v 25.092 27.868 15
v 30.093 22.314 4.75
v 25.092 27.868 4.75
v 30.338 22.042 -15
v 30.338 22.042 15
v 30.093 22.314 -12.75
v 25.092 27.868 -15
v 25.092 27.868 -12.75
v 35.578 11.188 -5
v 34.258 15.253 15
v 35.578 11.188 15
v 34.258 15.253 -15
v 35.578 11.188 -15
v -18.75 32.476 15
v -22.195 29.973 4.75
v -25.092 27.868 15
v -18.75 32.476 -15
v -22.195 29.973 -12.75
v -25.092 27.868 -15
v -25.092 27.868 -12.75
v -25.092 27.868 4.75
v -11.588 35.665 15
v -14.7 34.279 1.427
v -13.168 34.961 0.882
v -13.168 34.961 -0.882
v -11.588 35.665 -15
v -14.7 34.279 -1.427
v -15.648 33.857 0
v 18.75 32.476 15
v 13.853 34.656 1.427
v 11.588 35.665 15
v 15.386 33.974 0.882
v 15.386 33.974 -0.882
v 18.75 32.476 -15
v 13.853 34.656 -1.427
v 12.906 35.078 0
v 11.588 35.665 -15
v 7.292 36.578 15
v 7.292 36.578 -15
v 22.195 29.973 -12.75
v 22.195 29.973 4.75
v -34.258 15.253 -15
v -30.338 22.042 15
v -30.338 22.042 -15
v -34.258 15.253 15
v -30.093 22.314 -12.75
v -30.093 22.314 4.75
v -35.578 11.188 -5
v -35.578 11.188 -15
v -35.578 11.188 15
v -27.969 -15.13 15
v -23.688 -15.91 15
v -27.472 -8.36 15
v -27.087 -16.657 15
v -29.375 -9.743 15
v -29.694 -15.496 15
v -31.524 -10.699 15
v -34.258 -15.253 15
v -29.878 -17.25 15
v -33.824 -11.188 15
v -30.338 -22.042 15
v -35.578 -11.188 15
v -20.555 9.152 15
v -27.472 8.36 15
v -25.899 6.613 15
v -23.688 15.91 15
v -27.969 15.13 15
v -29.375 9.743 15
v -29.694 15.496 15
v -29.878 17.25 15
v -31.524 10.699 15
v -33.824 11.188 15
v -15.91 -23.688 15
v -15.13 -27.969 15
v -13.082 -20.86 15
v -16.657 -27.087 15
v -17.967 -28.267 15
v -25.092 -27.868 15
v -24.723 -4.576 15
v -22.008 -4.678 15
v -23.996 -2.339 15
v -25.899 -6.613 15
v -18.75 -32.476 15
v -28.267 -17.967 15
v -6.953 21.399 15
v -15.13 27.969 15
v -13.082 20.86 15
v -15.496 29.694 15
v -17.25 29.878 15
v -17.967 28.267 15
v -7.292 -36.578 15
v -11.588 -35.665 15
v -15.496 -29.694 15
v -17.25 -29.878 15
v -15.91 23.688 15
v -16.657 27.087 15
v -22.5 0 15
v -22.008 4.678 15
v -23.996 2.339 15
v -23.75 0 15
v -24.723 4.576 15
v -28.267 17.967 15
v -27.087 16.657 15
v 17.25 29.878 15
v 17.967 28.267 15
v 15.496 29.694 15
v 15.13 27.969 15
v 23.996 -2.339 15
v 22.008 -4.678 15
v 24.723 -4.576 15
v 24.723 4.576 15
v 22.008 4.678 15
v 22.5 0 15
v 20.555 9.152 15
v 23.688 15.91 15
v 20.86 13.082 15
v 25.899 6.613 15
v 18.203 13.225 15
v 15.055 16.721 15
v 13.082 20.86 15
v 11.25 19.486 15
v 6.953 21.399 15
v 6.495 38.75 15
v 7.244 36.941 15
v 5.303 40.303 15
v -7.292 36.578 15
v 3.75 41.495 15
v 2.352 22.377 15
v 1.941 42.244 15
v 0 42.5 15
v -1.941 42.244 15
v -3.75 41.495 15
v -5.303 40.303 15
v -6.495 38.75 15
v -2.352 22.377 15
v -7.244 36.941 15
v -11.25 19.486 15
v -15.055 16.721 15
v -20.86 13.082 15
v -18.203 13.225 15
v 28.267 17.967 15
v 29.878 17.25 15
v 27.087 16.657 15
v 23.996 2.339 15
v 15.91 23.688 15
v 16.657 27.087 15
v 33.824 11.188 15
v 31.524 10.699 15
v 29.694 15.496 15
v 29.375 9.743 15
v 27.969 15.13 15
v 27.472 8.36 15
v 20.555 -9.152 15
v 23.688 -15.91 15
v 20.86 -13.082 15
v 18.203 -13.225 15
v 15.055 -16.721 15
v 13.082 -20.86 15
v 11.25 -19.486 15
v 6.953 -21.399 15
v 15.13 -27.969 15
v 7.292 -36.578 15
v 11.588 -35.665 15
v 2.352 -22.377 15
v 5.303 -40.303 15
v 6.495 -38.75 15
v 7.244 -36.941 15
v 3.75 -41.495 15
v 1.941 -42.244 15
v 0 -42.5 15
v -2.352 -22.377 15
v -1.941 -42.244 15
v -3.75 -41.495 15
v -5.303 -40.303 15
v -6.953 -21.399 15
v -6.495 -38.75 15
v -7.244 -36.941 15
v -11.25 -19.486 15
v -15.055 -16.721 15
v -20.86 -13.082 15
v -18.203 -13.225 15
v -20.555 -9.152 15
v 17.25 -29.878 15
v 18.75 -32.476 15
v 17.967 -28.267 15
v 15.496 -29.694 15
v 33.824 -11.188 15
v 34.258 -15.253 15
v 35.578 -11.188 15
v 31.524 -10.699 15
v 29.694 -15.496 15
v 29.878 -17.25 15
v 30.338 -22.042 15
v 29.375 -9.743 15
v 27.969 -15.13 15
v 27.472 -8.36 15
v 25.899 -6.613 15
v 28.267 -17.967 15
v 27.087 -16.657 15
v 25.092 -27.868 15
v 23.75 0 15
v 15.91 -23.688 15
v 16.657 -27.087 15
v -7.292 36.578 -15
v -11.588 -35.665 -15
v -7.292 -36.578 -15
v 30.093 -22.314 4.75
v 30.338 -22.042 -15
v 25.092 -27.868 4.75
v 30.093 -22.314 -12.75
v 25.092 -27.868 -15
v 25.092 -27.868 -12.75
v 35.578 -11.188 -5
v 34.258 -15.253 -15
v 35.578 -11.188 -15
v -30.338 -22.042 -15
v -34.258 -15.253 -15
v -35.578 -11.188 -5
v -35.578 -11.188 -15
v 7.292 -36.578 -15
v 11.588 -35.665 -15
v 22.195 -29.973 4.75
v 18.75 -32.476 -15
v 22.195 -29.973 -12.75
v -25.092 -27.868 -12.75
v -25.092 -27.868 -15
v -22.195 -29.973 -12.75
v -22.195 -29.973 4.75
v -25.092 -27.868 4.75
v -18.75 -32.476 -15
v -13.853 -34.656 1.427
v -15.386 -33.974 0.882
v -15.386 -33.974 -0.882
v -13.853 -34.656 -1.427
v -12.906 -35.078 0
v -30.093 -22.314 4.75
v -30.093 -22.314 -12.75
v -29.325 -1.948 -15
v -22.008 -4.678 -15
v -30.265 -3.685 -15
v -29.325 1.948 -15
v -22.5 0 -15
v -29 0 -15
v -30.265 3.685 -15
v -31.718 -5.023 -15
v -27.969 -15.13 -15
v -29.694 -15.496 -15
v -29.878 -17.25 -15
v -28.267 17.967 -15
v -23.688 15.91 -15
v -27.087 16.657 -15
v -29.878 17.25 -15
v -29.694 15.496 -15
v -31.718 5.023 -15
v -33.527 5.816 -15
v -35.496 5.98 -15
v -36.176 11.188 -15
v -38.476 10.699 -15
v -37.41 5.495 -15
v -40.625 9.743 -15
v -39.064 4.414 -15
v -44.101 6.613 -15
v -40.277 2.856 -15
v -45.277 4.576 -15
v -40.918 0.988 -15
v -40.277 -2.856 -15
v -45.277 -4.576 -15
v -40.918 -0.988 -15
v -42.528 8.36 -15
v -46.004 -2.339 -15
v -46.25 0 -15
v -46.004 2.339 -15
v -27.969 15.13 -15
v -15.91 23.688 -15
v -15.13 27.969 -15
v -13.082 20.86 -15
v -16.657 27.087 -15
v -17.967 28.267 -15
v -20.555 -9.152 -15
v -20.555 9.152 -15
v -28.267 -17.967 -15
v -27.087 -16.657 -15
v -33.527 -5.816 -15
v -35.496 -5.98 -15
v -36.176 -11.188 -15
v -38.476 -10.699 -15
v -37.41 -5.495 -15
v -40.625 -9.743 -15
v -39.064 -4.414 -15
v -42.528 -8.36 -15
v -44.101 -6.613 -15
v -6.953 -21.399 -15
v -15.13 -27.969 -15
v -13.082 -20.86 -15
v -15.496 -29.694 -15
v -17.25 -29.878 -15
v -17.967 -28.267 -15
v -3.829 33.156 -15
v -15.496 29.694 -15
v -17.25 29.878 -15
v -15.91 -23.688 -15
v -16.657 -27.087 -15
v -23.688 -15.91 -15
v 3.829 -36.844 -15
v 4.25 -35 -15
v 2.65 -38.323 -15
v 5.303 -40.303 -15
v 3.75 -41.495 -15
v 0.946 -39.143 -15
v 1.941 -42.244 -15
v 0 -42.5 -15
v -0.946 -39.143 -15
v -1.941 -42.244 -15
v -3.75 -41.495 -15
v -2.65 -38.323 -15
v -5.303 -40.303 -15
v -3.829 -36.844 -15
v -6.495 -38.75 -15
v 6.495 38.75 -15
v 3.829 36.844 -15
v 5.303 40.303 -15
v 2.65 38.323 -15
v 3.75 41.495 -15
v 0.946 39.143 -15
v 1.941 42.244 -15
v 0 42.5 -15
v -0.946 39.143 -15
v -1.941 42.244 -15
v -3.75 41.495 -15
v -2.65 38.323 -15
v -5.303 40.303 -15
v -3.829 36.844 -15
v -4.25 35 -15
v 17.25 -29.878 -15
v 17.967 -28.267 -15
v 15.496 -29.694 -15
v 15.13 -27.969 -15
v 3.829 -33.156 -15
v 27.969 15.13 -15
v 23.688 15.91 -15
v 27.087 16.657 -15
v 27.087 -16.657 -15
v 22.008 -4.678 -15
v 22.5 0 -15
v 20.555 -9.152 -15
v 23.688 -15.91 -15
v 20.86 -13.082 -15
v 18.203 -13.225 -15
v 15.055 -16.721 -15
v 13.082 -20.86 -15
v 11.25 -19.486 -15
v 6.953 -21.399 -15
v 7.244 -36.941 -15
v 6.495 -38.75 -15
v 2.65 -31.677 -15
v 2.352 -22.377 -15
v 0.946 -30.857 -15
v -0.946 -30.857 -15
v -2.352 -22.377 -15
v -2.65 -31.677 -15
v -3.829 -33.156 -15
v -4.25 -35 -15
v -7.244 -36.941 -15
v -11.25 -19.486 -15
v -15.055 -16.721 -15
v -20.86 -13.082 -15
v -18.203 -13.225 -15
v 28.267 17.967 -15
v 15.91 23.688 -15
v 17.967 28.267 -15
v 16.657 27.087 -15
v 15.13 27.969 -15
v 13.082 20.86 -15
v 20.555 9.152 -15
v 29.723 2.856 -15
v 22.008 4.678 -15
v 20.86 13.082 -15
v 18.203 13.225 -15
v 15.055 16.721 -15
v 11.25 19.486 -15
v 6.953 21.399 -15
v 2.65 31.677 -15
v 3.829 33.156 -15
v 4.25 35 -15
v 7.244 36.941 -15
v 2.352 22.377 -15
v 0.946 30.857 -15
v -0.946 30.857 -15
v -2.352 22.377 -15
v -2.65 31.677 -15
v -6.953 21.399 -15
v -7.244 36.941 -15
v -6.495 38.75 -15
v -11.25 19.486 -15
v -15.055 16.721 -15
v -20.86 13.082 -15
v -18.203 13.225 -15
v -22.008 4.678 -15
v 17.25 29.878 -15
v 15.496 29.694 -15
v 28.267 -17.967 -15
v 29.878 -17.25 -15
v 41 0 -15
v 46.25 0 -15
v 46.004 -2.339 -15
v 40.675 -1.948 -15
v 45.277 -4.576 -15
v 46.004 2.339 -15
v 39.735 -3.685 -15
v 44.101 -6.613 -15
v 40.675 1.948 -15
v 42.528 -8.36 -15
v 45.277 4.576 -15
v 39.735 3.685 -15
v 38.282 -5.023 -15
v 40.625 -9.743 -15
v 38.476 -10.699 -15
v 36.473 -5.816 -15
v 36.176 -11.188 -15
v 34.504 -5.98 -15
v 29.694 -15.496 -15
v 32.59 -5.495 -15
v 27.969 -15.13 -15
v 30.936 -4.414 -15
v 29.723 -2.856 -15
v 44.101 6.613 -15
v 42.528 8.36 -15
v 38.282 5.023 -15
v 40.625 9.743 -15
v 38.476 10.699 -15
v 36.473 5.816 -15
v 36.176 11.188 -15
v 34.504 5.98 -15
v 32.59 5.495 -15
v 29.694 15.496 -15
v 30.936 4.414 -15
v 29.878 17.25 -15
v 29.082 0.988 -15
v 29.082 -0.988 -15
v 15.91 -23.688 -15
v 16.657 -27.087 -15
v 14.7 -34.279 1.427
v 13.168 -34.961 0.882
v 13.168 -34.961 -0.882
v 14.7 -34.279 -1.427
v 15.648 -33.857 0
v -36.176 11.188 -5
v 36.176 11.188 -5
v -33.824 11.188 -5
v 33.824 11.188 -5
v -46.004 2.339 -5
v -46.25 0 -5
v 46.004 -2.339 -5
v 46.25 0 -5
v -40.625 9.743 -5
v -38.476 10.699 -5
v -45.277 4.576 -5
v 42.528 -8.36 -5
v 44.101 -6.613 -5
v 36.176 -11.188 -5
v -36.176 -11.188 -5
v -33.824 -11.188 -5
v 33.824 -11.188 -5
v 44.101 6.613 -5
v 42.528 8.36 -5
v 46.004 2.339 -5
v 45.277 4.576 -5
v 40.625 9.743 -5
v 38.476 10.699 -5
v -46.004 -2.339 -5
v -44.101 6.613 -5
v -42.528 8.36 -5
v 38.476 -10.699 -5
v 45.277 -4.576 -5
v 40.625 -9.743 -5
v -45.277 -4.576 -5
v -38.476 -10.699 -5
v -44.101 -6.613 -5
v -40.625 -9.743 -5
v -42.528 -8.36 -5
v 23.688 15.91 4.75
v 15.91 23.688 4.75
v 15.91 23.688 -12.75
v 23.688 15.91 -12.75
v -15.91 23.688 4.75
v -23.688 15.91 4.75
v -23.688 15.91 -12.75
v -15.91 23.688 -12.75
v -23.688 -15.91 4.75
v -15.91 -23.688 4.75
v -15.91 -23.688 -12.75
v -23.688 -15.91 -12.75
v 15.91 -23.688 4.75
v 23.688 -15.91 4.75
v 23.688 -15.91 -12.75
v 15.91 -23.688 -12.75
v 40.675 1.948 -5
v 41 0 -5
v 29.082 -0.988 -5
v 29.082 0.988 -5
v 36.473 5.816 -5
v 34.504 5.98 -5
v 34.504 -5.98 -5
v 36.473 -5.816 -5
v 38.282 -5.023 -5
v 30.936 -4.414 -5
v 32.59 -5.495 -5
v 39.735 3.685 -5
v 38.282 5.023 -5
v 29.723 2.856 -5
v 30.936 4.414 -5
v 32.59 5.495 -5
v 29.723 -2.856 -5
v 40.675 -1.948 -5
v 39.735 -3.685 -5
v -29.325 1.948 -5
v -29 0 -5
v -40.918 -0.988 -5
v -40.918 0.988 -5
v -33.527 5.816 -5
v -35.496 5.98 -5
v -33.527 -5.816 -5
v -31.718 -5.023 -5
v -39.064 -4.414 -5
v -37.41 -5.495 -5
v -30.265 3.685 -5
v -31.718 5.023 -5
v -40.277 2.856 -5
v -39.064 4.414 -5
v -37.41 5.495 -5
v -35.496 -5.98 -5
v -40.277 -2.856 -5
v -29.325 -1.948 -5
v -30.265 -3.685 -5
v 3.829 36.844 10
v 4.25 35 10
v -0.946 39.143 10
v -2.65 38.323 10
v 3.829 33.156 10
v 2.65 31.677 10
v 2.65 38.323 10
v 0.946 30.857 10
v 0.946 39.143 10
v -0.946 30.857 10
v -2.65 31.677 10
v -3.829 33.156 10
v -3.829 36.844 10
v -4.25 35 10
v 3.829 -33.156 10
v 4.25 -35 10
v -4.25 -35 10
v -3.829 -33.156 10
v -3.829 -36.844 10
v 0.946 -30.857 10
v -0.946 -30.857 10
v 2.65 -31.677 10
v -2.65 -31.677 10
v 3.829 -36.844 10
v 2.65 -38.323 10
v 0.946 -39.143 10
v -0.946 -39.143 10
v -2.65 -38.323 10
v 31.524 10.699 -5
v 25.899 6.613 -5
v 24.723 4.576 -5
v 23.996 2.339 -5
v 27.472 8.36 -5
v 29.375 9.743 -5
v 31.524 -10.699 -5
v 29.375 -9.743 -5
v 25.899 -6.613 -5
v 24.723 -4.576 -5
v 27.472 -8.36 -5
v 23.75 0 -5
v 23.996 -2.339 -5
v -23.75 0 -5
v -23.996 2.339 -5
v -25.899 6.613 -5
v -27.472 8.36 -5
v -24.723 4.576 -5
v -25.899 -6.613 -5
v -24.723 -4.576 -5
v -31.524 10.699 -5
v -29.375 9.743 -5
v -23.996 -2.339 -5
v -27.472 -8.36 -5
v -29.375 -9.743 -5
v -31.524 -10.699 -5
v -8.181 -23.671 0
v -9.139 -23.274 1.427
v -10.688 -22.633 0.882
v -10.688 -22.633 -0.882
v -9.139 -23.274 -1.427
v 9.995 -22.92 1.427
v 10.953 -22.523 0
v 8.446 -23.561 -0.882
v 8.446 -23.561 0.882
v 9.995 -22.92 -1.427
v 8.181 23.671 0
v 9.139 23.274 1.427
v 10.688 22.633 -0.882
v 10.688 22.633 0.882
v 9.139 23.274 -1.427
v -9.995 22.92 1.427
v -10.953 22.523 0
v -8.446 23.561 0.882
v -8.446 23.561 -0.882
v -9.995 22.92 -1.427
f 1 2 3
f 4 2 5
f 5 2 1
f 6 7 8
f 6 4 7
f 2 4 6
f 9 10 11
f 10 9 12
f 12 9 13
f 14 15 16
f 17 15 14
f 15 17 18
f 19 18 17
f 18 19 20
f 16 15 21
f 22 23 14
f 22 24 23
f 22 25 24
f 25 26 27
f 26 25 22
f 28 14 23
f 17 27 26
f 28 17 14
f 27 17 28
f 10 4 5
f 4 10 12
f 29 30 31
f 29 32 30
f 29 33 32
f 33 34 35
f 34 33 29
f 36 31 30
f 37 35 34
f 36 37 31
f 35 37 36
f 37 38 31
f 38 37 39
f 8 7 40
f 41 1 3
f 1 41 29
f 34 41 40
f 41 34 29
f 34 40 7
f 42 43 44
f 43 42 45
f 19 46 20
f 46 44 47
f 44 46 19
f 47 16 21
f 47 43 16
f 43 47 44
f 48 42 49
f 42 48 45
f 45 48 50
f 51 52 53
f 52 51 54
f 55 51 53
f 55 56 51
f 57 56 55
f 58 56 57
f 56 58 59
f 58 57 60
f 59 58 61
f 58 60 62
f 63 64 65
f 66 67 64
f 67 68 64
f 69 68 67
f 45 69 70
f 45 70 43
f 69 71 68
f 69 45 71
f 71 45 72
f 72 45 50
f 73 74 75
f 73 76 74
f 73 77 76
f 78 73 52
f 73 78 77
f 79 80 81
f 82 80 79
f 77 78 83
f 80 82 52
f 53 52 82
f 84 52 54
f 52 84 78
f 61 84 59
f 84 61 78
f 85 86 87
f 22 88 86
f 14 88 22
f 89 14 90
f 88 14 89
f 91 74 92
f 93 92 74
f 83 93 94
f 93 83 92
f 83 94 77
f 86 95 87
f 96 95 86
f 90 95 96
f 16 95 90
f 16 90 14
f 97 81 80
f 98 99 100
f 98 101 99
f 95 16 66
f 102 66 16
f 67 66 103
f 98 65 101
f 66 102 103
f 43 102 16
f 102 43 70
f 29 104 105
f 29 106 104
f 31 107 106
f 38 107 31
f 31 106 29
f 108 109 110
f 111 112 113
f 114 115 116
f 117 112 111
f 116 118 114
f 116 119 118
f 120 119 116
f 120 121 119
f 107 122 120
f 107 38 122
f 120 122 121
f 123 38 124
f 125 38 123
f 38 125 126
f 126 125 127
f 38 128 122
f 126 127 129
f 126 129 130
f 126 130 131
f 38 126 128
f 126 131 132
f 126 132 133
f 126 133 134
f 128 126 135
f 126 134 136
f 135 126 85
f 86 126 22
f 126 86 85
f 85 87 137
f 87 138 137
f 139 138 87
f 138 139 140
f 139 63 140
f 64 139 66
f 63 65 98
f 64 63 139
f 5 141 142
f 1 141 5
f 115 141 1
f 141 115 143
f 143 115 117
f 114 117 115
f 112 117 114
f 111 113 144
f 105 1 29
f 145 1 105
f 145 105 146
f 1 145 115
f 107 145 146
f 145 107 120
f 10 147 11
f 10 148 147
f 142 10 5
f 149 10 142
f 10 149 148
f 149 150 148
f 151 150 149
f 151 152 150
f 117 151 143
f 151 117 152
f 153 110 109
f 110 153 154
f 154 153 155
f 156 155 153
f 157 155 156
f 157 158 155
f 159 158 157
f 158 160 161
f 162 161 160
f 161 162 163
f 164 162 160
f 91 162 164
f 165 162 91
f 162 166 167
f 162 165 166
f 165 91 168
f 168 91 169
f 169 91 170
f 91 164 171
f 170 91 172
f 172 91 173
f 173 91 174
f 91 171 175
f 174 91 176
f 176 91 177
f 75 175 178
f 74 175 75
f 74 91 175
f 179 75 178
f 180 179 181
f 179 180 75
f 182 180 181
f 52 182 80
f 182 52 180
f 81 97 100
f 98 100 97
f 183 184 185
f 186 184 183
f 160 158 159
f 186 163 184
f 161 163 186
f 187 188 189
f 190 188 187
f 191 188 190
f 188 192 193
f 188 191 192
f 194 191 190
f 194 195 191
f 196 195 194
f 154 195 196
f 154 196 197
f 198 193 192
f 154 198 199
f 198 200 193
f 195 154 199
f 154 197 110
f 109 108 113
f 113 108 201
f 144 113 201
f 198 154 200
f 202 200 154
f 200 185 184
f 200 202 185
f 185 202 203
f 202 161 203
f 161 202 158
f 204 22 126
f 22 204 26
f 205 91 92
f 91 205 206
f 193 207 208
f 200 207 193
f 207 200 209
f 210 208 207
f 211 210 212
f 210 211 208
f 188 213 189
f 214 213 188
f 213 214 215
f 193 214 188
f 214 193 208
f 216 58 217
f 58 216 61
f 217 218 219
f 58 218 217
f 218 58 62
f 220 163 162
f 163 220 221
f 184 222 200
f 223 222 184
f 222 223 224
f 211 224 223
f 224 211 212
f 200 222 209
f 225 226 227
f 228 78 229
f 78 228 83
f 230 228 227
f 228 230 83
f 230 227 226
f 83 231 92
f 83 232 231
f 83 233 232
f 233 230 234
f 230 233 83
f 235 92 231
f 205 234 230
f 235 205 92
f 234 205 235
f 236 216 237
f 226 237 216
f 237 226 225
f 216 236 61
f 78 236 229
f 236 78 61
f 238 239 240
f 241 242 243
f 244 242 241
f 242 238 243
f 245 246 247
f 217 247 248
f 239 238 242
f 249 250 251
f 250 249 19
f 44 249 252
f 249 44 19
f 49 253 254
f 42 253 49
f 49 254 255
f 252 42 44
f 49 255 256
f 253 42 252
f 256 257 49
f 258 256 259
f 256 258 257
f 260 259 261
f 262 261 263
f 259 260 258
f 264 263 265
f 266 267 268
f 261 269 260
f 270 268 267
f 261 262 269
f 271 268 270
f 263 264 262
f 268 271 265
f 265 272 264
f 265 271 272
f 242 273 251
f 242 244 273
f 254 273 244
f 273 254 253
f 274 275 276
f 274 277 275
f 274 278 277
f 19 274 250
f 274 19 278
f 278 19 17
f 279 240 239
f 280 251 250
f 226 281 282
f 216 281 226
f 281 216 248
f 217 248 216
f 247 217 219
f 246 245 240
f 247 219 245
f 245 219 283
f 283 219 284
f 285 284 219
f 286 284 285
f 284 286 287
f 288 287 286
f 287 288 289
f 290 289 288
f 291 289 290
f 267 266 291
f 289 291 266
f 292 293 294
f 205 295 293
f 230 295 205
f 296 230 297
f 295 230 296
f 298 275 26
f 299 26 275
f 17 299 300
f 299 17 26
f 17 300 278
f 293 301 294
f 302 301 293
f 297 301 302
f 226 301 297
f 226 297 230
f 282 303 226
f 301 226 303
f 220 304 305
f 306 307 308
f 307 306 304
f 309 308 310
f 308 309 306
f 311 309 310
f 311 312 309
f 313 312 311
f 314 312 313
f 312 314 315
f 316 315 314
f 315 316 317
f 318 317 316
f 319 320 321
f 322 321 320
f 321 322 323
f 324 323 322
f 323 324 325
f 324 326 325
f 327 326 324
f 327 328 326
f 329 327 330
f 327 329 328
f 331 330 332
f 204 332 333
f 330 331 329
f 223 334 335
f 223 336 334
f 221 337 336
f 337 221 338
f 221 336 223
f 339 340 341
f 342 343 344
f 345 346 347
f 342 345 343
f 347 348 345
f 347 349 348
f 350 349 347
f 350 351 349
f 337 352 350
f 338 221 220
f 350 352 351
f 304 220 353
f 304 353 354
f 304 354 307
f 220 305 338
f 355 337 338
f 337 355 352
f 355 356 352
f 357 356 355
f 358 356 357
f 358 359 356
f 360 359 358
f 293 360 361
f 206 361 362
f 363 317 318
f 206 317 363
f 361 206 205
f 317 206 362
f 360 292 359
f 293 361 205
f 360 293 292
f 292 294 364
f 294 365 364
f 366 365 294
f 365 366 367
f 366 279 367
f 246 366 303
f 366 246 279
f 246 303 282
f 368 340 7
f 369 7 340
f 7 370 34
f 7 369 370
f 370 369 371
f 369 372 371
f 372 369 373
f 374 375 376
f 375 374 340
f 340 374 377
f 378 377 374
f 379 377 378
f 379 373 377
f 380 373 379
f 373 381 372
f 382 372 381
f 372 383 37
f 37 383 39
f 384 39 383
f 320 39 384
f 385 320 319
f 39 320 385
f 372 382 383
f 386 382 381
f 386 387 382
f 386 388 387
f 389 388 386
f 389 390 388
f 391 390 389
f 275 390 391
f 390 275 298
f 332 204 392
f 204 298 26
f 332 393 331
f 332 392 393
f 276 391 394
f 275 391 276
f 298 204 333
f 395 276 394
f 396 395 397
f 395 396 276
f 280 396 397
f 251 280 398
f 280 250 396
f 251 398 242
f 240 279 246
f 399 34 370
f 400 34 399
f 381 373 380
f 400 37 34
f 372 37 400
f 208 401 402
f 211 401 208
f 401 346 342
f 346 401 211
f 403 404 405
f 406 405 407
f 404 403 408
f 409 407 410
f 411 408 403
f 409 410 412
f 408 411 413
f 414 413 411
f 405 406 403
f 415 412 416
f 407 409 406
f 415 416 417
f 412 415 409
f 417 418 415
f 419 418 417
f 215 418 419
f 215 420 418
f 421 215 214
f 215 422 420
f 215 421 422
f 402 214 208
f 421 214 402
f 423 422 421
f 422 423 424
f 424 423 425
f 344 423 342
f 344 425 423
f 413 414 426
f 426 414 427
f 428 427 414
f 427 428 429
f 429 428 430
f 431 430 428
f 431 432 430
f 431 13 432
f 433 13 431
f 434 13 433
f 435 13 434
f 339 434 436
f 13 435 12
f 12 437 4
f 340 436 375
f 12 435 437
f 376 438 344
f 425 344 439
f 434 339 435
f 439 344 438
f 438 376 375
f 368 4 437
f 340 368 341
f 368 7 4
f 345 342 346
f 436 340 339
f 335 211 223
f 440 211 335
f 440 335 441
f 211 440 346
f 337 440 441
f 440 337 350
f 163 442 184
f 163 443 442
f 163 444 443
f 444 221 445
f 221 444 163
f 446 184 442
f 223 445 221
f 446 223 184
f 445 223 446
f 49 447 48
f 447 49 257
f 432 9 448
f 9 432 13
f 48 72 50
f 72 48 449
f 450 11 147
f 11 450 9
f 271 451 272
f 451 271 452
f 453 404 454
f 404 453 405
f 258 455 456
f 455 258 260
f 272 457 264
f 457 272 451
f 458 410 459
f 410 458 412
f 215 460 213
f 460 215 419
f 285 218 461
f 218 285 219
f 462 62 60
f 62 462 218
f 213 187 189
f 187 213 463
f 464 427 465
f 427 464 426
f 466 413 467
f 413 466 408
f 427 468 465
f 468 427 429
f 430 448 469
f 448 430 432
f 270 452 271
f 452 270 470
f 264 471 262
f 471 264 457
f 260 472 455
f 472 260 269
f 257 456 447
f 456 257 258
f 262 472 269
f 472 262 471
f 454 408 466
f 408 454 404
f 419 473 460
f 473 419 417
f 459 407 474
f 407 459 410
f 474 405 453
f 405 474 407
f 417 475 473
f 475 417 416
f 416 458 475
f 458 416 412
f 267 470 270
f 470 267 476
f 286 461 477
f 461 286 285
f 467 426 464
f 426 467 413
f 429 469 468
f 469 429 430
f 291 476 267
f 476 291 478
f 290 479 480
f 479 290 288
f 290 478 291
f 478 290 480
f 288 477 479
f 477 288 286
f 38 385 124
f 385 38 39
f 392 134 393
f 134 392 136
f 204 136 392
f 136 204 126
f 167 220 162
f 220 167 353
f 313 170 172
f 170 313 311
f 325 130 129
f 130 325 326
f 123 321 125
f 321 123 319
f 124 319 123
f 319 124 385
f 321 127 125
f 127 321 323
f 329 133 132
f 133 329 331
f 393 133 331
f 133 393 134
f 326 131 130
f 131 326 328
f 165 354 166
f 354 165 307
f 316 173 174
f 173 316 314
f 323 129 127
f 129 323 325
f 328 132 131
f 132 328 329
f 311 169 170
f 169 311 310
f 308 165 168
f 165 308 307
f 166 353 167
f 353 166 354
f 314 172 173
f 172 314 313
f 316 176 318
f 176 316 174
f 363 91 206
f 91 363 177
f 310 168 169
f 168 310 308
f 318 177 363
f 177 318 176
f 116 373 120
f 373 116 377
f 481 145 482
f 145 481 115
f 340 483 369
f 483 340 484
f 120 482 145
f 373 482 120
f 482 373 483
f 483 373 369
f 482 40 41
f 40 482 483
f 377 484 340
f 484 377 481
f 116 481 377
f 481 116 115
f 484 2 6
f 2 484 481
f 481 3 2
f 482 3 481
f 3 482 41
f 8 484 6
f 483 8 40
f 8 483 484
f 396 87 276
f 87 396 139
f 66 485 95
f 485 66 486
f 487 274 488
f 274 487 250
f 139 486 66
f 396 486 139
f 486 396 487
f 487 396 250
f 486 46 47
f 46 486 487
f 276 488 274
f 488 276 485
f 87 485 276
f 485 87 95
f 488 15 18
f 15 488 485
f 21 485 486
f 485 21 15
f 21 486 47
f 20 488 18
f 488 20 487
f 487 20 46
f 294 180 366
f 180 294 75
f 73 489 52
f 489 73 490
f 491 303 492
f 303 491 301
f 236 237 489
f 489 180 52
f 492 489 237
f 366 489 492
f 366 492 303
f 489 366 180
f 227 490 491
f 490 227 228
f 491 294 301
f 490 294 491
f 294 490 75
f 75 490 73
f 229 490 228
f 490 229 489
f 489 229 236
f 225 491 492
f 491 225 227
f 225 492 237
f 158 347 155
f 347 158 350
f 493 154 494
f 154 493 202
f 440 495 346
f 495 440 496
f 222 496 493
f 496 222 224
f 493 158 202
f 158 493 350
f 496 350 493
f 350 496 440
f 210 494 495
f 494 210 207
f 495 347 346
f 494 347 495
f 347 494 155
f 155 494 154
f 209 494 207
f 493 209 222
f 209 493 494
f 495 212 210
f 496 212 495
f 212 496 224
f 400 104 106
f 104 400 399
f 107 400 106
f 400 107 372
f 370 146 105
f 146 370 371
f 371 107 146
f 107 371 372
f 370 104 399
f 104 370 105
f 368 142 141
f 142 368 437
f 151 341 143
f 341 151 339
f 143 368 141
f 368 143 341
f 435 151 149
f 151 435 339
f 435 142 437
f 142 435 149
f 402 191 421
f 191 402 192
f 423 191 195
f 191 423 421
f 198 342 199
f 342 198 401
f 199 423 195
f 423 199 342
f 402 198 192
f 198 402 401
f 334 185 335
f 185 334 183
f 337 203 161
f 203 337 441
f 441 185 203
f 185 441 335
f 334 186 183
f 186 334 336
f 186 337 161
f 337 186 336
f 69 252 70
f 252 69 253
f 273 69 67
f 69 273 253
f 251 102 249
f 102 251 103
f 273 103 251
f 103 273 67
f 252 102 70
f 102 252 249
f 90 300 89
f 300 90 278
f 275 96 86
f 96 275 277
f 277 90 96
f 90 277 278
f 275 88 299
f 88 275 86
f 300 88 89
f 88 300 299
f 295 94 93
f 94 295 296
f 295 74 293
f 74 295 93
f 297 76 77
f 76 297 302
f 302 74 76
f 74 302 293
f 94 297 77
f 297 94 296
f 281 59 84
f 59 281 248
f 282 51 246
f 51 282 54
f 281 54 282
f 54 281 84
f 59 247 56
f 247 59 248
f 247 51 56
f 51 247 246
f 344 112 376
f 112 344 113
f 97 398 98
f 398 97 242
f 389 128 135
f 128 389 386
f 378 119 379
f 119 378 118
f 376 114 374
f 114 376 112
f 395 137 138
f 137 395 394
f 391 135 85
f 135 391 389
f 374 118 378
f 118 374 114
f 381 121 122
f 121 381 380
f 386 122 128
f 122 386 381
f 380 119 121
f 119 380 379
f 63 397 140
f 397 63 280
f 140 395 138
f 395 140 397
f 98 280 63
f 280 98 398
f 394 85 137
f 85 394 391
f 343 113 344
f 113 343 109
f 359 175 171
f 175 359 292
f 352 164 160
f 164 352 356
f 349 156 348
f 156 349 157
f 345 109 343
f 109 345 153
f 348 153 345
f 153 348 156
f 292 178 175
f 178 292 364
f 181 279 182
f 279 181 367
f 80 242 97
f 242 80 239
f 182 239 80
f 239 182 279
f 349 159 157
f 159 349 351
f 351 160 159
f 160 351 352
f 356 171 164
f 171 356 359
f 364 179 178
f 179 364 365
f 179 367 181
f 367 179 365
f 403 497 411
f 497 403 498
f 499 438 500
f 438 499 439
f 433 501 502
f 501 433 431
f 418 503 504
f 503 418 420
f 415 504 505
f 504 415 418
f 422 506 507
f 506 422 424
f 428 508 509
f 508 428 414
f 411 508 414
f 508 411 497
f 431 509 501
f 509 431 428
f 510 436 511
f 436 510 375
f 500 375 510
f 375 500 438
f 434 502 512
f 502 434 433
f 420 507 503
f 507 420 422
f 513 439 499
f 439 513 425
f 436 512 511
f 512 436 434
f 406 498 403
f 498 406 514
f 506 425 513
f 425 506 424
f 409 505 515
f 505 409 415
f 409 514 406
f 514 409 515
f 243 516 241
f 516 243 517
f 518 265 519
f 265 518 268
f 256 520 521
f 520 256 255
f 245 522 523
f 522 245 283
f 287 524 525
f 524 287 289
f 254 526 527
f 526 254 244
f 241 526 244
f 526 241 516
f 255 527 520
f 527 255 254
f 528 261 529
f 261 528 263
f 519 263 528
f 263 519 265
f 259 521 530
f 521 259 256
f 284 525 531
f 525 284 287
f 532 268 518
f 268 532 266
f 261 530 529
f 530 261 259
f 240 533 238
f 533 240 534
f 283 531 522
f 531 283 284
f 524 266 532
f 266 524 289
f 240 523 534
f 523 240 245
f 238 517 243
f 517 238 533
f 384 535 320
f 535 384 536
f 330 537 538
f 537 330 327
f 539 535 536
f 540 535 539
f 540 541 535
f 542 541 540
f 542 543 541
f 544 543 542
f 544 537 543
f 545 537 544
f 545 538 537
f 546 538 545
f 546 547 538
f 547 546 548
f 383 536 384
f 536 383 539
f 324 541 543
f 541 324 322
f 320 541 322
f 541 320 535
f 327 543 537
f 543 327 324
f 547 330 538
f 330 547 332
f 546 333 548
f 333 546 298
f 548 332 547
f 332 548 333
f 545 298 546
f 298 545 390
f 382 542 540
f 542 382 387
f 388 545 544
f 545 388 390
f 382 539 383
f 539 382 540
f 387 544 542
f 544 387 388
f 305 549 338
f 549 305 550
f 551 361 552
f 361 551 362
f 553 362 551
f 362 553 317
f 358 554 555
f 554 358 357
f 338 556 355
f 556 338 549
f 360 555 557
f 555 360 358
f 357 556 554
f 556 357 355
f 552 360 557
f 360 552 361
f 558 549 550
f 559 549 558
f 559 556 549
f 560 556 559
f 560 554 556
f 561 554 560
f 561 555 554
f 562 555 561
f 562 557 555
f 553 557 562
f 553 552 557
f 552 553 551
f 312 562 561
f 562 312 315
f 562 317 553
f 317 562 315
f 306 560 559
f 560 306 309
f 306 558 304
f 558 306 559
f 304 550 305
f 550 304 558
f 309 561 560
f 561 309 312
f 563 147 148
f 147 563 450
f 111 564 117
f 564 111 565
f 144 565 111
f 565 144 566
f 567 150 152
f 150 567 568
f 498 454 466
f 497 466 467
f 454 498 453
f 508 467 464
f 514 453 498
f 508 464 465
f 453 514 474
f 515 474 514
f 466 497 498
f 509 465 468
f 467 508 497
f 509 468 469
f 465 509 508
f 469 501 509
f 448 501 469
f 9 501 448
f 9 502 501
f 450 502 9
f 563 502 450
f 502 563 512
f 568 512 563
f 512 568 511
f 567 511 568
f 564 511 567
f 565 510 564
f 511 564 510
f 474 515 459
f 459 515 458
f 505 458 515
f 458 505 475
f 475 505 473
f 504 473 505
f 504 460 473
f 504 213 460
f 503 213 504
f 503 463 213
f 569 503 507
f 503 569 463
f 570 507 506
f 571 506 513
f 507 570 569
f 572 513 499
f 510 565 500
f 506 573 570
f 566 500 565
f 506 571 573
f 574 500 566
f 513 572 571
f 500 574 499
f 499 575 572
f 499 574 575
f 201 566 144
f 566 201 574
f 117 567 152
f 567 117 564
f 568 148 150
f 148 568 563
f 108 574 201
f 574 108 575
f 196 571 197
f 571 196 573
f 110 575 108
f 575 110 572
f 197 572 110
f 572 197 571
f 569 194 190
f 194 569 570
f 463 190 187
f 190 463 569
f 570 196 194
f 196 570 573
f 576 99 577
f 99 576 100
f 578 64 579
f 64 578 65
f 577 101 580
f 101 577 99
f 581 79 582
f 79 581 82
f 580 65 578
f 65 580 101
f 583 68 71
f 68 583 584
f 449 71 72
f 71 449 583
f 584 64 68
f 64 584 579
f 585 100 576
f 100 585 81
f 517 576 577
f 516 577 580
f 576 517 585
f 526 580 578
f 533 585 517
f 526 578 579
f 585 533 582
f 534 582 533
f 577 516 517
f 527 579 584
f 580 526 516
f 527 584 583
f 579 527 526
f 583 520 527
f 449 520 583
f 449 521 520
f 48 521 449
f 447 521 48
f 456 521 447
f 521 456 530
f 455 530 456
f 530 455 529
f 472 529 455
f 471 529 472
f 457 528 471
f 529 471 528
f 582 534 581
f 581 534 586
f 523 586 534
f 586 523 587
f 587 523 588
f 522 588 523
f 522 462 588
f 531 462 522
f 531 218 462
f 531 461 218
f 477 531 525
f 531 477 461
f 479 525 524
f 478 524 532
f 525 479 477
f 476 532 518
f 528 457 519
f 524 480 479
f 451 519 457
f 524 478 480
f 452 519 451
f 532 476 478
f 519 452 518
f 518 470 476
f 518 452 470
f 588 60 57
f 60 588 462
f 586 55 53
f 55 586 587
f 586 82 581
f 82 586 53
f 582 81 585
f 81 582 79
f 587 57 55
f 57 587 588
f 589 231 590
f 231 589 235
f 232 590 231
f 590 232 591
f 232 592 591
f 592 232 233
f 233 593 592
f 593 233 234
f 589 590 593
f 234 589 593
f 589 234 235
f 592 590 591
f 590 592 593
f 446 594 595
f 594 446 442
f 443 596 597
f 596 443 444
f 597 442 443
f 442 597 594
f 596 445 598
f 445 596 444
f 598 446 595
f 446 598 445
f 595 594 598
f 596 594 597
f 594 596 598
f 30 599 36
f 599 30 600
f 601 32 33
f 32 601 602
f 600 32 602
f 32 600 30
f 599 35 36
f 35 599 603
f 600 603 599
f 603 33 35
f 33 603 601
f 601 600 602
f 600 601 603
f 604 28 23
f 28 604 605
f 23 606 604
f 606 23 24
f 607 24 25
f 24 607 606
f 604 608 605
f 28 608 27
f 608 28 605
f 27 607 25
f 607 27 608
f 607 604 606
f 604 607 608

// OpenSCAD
front();

module front() {
	difference() {
		union() {
			cylinder(d=75, h=30, center=true);
			
			hull() {
				translate([35,0,0])
					cylinder(d=22.5, h=30, center = true);
				translate([-35,0,0])
					cylinder(d=22.5, h=30, center = true);
			}
			
			hull() {
				translate([0,35,0])
					cylinder(d=15, h=30, center = true);
				translate([0,-35,0])
					cylinder(d=15, h=30, center = true);
			}
		}
		
		cylinder(d=45, h=45, center = true);
		
		// 10mm Rod Holes
		translate([35,0,0])
			cylinder(d=12, h=30+0.1, center = true);
		translate([-35,0,0])
			cylinder(d=12, h=30+0.1, center = true);
		
		// 8mm Rod Holes
		translate([0,35,-5])
			cylinder(d=8.5, h=30, center = true);
		translate([0,-35,-5])
			cylinder(d=8.5, h=30, center = true);
		
		// Nut Holes
		translate([35,0,-5])
			cylinder(d=22.5, h=20, center = false);
		translate([-35,0,-5])
			cylinder(d=22.5, h=20, center = false);
		
		// Spring Notches
		rotate([0,0,45]) {
			translate([26,0,0])
				cube([4,11,50], center=true);
			translate([35,0,-4])
				cube([20,11,17.5], center=true);
		}
		rotate([0,0,135]) {
			translate([26,0,0])
				cube([4,11,50], center=true);
			translate([35,0,-4])
				cube([20,11,17.5], center=true);
		}
		rotate([0,0,225]) {
			translate([26,0,0])
				cube([4,11,50], center=true);
			translate([35,0,-4])
				cube([20,11,17.5], center=true);
		}
		rotate([0,0,-45]) {
			translate([26,0,0])
				cube([4,11,50], center=true);
			translate([35,0,-4])
				cube([20,11,17.5], center=true);
		}
	
		// Cap Mount Holes
		rotate([90,0,-22.5])
			translate([0,0,25])
				cylinder(d=3, h=30, center = false);
		rotate([90,0,22.5])
			translate([0,0,25])
				cylinder(d=3, h=30, center = false);
		rotate([90,0,-22.5+180])
			translate([0,0,25])
				cylinder(d=3, h=30, center = false);
		rotate([90,0,22.5+180])
			translate([0,0,25])
				cylinder(d=3, h=30, center = false);
		
		// Reinforcement Holes
		rotate([0,0,45]) {
			rotate([0,0,15])
				translate([33,0,0])
					cylinder(d=3, h=30+0.1, center = true);
			rotate([0,0,-15])
				translate([33,0,0])
					cylinder(d=3, h=30+0.1, center = true);
		}
		rotate([0,0,-45]) {
			rotate([0,0,15])
				translate([33,0,0])
					cylinder(d=3, h=30+0.1, center = true);
			rotate([0,0,-15])
				translate([33,0,0])
					cylinder(d=3, h=30+0.1, center = true);
		}
		rotate([0,0,135]) {
			rotate([0,0,15])
				translate([33,0,0])
					cylinder(d=3, h=30+0.1, center = true);
			rotate([0,0,-15])
				translate([33,0,0])
					cylinder(d=3, h=30+0.1, center = true);
		}
		rotate([0,0,-135]) {
			rotate([0,0,15])
				translate([33,0,0])
					cylinder(d=3, h=30+0.1, center = true);
			rotate([0,0,-15])
				translate([33,0,0])
					cylinder(d=3, h=30+0.1, center = true);
		}
	}
}
